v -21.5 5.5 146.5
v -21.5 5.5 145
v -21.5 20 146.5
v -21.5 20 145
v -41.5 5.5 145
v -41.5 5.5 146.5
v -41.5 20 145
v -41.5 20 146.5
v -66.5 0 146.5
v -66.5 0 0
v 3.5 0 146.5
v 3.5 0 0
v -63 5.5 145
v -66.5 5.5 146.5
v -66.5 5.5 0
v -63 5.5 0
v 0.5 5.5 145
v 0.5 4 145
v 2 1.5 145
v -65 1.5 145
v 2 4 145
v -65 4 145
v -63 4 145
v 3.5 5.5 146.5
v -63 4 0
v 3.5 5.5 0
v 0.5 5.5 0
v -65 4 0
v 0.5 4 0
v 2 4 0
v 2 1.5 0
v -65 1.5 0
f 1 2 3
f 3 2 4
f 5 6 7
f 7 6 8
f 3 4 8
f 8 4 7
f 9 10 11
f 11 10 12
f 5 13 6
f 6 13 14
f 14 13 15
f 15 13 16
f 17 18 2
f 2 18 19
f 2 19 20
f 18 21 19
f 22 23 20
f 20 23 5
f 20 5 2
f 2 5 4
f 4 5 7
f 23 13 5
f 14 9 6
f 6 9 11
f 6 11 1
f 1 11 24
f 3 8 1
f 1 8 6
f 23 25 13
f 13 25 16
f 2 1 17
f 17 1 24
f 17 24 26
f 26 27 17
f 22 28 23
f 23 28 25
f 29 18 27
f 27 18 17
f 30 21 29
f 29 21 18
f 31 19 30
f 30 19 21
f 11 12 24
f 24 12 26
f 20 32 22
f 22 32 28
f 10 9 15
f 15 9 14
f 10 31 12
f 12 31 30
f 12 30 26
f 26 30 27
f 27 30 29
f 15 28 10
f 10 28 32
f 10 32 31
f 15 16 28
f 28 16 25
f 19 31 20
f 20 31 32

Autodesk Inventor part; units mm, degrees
ref_plane "YZ Plane" through (0, 0, 0) normal (1, 0, 0) x (0, 1, 0)
ref_plane "XZ Plane" through (0, 0, 0) normal (0, 1, 0) x (-1, 0, 0)
ref_plane "XY Plane" through (0, 0, 0) normal (0, 0, 1) x (1, 0, 0)
sketch "Skizze1" plane through (0, 0, 0) normal (0, 1, 0) x (-1, 0, 0)
  line L0 (0, 0) -> (63, 0)
  line L1 (63, 0) -> (63, 145)
  line L2 (63, 145) -> (0, 145)
  line L3 (0, 145) -> (0, 0)
  line L4 (63, 0) -> (67, 0)
  line L5 (63, 123.7495) -> (63, 0)
  line L6 (0, 0) -> (-4, 0)
  line L7 (0, 125) -> (0, 0)
  line L8 (63, 0) -> (66.5, 0)
  line L9 (66.5, 0) -> (66.5, 145)
  line L10 (66.5, 145) -> (63, 145)
  line L11 (63, 145) -> (63, 0)
  line L12 (66.5, 145) -> (65, 145)
  line L13 (65, 145) -> (65, 0)
  line L14 (65, 0) -> (66.5, 0)
  line L15 (66.5, 0) -> (66.5, 145)
  line L16 (0, 0) -> (-3.5, 0)
  line L17 (-3.5, 0) -> (-3.5, 145)
  line L18 (-3.5, 145) -> (0, 145)
  line L19 (0, 145) -> (0, 0)
  line L20 (-3.5, 0) -> (-2, 0)
  line L21 (-2, 0) -> (-2, 145)
  line L22 (-2, 145) -> (-3.5, 145)
  line L23 (-3.5, 145) -> (-3.5, 0)
  line L24 (66.5, 145) -> (-3.5, 145)
  line L25 (-3.5, 145) -> (-3.5, 146.5)
  line L26 (-3.5, 146.5) -> (66.5, 146.5)
  line L27 (66.5, 146.5) -> (66.5, 145)
  line L28 (41.5, 145) -> (21.5, 145)
  line L29 (21.5, 145) -> (21.5, 146.5)
  line L30 (21.5, 146.5) -> (41.5, 146.5)
  line L31 (41.5, 146.5) -> (41.5, 145)
  point P0 (65, 0)
  point P1 (0, 145)
  point P2 (-2, 0)
  point P3 (-3.5, 0)
  dimension "d0" = 63
  dimension "d1" = 145
  dimension "d5" = 1.5
  dimension "d6" = 3.5
  dimension "d7" = 3.5
  dimension "d8" = 1.5
  dimension "d9" = 1.5
  dimension "d29" = 0
  dimension "d31" = 0
  dimension "d32" = 0
  dimension "d33" = 20
  dimension "d34" = 25
  dimension "d35" = 25
extrude "Extrusion1" add sketch "Skizze1" along normal blind 1.5 contours L3 L2 L1 L0 | L6 L21 L18 L3 | L1 L10 L13 L4
extrude "Extrusion2" add sketch "Skizze1" along normal blind 4 contours L6 L17 L18 L21 | L13 L10 L9 L4
sketch "Skizze2" plane through (0, 4, 0) normal (0, 1, 0) x (1, 0, 0)
  line L0 (-66.5, -145) -> (3.5, -145) projected
  line L1 (2, 0) -> (-65, 0) projected
  line L2 (3.5, -145) -> (0.5, -145)
  line L3 (0.5, -145) -> (0.5, 0)
  line L4 (0.5, 0) -> (3.5, 0)
  line L5 (3.5, 0) -> (3.5, -145)
  point P0 (0, 0)
  point P1 (-63, -125)
  point P2 (2, 0)
  point P3 (0.5, -144.0977)
  dimension "d14" = 3
extrude "Extrusion3" add sketch "Skizze2" along normal blind 1.5
sketch "Skizze3" plane through (0, 4, 0) normal (0, 1, 0) x (1, 0, 0)
  line L0 (-66.5, 0) -> (-66.5, -145) projected
  line L1 (-66.5, 0) -> (-63, 0)
  line L2 (-63, 0) -> (-63, -125.035)
  line L3 (-66.5, -125.035) -> (-66.5, 0)
  line L4 (-63, -125.035) -> (-63, -145)
  line L5 (-63, -145) -> (-66.5, -145)
  point P0 (0, 0)
  point P1 (-66.5, -125.035)
  dimension "d17" = 3.5
extrude "Extrusion4" add sketch "Skizze3" along normal blind 1.5
extrude "Extrusion5" add sketch "Skizze1" along normal blind 5.5 contours L18 L25 L26 L29 L2 | L2 L31 L26 L27 L10 | L29 L26 L31 L2
sketch "Skizze4" plane through (3.5, 0, 0) normal (0, 0, -1) x (-1, 0, 0)
  line L0 (1.5, 1.5) -> (68.5, 1.5) projected
  line L1 (0, 0) -> (70, 0) projected
  line L2 (1.5, 4) -> (3, 4) projected
  line L3 (0, 5.5) -> (3, 5.5) projected
  line L4 (0, 0) -> (0, 5.5) projected
  line L5 (3, 4) -> (3, 5.5) projected
  line L6 (1.5, 1.5) -> (1.5, 4) projected
  line L7 (68.5, 1.5) -> (68.5, 4) projected
  line L8 (66.5, 4) -> (66.5, 5.5) projected
  line L9 (70, 0) -> (70, 5.5) projected
  point P0 (3.5, 0)
  dimension "d22" = 1.5
  dimension "d23" = 2.5
  dimension "d24" = 1.5
  dimension "d25" = 3
  dimension "d26" = 1.5
  dimension "d27" = 67
  dimension "d28" = 63.5
  dimension "d30" = 70
extrude "Extrusion6" add sketch "Skizze1" along normal blind 20 contours L29 L26 L31 L2
properties part number "Deckel-Pumpe.v2"
